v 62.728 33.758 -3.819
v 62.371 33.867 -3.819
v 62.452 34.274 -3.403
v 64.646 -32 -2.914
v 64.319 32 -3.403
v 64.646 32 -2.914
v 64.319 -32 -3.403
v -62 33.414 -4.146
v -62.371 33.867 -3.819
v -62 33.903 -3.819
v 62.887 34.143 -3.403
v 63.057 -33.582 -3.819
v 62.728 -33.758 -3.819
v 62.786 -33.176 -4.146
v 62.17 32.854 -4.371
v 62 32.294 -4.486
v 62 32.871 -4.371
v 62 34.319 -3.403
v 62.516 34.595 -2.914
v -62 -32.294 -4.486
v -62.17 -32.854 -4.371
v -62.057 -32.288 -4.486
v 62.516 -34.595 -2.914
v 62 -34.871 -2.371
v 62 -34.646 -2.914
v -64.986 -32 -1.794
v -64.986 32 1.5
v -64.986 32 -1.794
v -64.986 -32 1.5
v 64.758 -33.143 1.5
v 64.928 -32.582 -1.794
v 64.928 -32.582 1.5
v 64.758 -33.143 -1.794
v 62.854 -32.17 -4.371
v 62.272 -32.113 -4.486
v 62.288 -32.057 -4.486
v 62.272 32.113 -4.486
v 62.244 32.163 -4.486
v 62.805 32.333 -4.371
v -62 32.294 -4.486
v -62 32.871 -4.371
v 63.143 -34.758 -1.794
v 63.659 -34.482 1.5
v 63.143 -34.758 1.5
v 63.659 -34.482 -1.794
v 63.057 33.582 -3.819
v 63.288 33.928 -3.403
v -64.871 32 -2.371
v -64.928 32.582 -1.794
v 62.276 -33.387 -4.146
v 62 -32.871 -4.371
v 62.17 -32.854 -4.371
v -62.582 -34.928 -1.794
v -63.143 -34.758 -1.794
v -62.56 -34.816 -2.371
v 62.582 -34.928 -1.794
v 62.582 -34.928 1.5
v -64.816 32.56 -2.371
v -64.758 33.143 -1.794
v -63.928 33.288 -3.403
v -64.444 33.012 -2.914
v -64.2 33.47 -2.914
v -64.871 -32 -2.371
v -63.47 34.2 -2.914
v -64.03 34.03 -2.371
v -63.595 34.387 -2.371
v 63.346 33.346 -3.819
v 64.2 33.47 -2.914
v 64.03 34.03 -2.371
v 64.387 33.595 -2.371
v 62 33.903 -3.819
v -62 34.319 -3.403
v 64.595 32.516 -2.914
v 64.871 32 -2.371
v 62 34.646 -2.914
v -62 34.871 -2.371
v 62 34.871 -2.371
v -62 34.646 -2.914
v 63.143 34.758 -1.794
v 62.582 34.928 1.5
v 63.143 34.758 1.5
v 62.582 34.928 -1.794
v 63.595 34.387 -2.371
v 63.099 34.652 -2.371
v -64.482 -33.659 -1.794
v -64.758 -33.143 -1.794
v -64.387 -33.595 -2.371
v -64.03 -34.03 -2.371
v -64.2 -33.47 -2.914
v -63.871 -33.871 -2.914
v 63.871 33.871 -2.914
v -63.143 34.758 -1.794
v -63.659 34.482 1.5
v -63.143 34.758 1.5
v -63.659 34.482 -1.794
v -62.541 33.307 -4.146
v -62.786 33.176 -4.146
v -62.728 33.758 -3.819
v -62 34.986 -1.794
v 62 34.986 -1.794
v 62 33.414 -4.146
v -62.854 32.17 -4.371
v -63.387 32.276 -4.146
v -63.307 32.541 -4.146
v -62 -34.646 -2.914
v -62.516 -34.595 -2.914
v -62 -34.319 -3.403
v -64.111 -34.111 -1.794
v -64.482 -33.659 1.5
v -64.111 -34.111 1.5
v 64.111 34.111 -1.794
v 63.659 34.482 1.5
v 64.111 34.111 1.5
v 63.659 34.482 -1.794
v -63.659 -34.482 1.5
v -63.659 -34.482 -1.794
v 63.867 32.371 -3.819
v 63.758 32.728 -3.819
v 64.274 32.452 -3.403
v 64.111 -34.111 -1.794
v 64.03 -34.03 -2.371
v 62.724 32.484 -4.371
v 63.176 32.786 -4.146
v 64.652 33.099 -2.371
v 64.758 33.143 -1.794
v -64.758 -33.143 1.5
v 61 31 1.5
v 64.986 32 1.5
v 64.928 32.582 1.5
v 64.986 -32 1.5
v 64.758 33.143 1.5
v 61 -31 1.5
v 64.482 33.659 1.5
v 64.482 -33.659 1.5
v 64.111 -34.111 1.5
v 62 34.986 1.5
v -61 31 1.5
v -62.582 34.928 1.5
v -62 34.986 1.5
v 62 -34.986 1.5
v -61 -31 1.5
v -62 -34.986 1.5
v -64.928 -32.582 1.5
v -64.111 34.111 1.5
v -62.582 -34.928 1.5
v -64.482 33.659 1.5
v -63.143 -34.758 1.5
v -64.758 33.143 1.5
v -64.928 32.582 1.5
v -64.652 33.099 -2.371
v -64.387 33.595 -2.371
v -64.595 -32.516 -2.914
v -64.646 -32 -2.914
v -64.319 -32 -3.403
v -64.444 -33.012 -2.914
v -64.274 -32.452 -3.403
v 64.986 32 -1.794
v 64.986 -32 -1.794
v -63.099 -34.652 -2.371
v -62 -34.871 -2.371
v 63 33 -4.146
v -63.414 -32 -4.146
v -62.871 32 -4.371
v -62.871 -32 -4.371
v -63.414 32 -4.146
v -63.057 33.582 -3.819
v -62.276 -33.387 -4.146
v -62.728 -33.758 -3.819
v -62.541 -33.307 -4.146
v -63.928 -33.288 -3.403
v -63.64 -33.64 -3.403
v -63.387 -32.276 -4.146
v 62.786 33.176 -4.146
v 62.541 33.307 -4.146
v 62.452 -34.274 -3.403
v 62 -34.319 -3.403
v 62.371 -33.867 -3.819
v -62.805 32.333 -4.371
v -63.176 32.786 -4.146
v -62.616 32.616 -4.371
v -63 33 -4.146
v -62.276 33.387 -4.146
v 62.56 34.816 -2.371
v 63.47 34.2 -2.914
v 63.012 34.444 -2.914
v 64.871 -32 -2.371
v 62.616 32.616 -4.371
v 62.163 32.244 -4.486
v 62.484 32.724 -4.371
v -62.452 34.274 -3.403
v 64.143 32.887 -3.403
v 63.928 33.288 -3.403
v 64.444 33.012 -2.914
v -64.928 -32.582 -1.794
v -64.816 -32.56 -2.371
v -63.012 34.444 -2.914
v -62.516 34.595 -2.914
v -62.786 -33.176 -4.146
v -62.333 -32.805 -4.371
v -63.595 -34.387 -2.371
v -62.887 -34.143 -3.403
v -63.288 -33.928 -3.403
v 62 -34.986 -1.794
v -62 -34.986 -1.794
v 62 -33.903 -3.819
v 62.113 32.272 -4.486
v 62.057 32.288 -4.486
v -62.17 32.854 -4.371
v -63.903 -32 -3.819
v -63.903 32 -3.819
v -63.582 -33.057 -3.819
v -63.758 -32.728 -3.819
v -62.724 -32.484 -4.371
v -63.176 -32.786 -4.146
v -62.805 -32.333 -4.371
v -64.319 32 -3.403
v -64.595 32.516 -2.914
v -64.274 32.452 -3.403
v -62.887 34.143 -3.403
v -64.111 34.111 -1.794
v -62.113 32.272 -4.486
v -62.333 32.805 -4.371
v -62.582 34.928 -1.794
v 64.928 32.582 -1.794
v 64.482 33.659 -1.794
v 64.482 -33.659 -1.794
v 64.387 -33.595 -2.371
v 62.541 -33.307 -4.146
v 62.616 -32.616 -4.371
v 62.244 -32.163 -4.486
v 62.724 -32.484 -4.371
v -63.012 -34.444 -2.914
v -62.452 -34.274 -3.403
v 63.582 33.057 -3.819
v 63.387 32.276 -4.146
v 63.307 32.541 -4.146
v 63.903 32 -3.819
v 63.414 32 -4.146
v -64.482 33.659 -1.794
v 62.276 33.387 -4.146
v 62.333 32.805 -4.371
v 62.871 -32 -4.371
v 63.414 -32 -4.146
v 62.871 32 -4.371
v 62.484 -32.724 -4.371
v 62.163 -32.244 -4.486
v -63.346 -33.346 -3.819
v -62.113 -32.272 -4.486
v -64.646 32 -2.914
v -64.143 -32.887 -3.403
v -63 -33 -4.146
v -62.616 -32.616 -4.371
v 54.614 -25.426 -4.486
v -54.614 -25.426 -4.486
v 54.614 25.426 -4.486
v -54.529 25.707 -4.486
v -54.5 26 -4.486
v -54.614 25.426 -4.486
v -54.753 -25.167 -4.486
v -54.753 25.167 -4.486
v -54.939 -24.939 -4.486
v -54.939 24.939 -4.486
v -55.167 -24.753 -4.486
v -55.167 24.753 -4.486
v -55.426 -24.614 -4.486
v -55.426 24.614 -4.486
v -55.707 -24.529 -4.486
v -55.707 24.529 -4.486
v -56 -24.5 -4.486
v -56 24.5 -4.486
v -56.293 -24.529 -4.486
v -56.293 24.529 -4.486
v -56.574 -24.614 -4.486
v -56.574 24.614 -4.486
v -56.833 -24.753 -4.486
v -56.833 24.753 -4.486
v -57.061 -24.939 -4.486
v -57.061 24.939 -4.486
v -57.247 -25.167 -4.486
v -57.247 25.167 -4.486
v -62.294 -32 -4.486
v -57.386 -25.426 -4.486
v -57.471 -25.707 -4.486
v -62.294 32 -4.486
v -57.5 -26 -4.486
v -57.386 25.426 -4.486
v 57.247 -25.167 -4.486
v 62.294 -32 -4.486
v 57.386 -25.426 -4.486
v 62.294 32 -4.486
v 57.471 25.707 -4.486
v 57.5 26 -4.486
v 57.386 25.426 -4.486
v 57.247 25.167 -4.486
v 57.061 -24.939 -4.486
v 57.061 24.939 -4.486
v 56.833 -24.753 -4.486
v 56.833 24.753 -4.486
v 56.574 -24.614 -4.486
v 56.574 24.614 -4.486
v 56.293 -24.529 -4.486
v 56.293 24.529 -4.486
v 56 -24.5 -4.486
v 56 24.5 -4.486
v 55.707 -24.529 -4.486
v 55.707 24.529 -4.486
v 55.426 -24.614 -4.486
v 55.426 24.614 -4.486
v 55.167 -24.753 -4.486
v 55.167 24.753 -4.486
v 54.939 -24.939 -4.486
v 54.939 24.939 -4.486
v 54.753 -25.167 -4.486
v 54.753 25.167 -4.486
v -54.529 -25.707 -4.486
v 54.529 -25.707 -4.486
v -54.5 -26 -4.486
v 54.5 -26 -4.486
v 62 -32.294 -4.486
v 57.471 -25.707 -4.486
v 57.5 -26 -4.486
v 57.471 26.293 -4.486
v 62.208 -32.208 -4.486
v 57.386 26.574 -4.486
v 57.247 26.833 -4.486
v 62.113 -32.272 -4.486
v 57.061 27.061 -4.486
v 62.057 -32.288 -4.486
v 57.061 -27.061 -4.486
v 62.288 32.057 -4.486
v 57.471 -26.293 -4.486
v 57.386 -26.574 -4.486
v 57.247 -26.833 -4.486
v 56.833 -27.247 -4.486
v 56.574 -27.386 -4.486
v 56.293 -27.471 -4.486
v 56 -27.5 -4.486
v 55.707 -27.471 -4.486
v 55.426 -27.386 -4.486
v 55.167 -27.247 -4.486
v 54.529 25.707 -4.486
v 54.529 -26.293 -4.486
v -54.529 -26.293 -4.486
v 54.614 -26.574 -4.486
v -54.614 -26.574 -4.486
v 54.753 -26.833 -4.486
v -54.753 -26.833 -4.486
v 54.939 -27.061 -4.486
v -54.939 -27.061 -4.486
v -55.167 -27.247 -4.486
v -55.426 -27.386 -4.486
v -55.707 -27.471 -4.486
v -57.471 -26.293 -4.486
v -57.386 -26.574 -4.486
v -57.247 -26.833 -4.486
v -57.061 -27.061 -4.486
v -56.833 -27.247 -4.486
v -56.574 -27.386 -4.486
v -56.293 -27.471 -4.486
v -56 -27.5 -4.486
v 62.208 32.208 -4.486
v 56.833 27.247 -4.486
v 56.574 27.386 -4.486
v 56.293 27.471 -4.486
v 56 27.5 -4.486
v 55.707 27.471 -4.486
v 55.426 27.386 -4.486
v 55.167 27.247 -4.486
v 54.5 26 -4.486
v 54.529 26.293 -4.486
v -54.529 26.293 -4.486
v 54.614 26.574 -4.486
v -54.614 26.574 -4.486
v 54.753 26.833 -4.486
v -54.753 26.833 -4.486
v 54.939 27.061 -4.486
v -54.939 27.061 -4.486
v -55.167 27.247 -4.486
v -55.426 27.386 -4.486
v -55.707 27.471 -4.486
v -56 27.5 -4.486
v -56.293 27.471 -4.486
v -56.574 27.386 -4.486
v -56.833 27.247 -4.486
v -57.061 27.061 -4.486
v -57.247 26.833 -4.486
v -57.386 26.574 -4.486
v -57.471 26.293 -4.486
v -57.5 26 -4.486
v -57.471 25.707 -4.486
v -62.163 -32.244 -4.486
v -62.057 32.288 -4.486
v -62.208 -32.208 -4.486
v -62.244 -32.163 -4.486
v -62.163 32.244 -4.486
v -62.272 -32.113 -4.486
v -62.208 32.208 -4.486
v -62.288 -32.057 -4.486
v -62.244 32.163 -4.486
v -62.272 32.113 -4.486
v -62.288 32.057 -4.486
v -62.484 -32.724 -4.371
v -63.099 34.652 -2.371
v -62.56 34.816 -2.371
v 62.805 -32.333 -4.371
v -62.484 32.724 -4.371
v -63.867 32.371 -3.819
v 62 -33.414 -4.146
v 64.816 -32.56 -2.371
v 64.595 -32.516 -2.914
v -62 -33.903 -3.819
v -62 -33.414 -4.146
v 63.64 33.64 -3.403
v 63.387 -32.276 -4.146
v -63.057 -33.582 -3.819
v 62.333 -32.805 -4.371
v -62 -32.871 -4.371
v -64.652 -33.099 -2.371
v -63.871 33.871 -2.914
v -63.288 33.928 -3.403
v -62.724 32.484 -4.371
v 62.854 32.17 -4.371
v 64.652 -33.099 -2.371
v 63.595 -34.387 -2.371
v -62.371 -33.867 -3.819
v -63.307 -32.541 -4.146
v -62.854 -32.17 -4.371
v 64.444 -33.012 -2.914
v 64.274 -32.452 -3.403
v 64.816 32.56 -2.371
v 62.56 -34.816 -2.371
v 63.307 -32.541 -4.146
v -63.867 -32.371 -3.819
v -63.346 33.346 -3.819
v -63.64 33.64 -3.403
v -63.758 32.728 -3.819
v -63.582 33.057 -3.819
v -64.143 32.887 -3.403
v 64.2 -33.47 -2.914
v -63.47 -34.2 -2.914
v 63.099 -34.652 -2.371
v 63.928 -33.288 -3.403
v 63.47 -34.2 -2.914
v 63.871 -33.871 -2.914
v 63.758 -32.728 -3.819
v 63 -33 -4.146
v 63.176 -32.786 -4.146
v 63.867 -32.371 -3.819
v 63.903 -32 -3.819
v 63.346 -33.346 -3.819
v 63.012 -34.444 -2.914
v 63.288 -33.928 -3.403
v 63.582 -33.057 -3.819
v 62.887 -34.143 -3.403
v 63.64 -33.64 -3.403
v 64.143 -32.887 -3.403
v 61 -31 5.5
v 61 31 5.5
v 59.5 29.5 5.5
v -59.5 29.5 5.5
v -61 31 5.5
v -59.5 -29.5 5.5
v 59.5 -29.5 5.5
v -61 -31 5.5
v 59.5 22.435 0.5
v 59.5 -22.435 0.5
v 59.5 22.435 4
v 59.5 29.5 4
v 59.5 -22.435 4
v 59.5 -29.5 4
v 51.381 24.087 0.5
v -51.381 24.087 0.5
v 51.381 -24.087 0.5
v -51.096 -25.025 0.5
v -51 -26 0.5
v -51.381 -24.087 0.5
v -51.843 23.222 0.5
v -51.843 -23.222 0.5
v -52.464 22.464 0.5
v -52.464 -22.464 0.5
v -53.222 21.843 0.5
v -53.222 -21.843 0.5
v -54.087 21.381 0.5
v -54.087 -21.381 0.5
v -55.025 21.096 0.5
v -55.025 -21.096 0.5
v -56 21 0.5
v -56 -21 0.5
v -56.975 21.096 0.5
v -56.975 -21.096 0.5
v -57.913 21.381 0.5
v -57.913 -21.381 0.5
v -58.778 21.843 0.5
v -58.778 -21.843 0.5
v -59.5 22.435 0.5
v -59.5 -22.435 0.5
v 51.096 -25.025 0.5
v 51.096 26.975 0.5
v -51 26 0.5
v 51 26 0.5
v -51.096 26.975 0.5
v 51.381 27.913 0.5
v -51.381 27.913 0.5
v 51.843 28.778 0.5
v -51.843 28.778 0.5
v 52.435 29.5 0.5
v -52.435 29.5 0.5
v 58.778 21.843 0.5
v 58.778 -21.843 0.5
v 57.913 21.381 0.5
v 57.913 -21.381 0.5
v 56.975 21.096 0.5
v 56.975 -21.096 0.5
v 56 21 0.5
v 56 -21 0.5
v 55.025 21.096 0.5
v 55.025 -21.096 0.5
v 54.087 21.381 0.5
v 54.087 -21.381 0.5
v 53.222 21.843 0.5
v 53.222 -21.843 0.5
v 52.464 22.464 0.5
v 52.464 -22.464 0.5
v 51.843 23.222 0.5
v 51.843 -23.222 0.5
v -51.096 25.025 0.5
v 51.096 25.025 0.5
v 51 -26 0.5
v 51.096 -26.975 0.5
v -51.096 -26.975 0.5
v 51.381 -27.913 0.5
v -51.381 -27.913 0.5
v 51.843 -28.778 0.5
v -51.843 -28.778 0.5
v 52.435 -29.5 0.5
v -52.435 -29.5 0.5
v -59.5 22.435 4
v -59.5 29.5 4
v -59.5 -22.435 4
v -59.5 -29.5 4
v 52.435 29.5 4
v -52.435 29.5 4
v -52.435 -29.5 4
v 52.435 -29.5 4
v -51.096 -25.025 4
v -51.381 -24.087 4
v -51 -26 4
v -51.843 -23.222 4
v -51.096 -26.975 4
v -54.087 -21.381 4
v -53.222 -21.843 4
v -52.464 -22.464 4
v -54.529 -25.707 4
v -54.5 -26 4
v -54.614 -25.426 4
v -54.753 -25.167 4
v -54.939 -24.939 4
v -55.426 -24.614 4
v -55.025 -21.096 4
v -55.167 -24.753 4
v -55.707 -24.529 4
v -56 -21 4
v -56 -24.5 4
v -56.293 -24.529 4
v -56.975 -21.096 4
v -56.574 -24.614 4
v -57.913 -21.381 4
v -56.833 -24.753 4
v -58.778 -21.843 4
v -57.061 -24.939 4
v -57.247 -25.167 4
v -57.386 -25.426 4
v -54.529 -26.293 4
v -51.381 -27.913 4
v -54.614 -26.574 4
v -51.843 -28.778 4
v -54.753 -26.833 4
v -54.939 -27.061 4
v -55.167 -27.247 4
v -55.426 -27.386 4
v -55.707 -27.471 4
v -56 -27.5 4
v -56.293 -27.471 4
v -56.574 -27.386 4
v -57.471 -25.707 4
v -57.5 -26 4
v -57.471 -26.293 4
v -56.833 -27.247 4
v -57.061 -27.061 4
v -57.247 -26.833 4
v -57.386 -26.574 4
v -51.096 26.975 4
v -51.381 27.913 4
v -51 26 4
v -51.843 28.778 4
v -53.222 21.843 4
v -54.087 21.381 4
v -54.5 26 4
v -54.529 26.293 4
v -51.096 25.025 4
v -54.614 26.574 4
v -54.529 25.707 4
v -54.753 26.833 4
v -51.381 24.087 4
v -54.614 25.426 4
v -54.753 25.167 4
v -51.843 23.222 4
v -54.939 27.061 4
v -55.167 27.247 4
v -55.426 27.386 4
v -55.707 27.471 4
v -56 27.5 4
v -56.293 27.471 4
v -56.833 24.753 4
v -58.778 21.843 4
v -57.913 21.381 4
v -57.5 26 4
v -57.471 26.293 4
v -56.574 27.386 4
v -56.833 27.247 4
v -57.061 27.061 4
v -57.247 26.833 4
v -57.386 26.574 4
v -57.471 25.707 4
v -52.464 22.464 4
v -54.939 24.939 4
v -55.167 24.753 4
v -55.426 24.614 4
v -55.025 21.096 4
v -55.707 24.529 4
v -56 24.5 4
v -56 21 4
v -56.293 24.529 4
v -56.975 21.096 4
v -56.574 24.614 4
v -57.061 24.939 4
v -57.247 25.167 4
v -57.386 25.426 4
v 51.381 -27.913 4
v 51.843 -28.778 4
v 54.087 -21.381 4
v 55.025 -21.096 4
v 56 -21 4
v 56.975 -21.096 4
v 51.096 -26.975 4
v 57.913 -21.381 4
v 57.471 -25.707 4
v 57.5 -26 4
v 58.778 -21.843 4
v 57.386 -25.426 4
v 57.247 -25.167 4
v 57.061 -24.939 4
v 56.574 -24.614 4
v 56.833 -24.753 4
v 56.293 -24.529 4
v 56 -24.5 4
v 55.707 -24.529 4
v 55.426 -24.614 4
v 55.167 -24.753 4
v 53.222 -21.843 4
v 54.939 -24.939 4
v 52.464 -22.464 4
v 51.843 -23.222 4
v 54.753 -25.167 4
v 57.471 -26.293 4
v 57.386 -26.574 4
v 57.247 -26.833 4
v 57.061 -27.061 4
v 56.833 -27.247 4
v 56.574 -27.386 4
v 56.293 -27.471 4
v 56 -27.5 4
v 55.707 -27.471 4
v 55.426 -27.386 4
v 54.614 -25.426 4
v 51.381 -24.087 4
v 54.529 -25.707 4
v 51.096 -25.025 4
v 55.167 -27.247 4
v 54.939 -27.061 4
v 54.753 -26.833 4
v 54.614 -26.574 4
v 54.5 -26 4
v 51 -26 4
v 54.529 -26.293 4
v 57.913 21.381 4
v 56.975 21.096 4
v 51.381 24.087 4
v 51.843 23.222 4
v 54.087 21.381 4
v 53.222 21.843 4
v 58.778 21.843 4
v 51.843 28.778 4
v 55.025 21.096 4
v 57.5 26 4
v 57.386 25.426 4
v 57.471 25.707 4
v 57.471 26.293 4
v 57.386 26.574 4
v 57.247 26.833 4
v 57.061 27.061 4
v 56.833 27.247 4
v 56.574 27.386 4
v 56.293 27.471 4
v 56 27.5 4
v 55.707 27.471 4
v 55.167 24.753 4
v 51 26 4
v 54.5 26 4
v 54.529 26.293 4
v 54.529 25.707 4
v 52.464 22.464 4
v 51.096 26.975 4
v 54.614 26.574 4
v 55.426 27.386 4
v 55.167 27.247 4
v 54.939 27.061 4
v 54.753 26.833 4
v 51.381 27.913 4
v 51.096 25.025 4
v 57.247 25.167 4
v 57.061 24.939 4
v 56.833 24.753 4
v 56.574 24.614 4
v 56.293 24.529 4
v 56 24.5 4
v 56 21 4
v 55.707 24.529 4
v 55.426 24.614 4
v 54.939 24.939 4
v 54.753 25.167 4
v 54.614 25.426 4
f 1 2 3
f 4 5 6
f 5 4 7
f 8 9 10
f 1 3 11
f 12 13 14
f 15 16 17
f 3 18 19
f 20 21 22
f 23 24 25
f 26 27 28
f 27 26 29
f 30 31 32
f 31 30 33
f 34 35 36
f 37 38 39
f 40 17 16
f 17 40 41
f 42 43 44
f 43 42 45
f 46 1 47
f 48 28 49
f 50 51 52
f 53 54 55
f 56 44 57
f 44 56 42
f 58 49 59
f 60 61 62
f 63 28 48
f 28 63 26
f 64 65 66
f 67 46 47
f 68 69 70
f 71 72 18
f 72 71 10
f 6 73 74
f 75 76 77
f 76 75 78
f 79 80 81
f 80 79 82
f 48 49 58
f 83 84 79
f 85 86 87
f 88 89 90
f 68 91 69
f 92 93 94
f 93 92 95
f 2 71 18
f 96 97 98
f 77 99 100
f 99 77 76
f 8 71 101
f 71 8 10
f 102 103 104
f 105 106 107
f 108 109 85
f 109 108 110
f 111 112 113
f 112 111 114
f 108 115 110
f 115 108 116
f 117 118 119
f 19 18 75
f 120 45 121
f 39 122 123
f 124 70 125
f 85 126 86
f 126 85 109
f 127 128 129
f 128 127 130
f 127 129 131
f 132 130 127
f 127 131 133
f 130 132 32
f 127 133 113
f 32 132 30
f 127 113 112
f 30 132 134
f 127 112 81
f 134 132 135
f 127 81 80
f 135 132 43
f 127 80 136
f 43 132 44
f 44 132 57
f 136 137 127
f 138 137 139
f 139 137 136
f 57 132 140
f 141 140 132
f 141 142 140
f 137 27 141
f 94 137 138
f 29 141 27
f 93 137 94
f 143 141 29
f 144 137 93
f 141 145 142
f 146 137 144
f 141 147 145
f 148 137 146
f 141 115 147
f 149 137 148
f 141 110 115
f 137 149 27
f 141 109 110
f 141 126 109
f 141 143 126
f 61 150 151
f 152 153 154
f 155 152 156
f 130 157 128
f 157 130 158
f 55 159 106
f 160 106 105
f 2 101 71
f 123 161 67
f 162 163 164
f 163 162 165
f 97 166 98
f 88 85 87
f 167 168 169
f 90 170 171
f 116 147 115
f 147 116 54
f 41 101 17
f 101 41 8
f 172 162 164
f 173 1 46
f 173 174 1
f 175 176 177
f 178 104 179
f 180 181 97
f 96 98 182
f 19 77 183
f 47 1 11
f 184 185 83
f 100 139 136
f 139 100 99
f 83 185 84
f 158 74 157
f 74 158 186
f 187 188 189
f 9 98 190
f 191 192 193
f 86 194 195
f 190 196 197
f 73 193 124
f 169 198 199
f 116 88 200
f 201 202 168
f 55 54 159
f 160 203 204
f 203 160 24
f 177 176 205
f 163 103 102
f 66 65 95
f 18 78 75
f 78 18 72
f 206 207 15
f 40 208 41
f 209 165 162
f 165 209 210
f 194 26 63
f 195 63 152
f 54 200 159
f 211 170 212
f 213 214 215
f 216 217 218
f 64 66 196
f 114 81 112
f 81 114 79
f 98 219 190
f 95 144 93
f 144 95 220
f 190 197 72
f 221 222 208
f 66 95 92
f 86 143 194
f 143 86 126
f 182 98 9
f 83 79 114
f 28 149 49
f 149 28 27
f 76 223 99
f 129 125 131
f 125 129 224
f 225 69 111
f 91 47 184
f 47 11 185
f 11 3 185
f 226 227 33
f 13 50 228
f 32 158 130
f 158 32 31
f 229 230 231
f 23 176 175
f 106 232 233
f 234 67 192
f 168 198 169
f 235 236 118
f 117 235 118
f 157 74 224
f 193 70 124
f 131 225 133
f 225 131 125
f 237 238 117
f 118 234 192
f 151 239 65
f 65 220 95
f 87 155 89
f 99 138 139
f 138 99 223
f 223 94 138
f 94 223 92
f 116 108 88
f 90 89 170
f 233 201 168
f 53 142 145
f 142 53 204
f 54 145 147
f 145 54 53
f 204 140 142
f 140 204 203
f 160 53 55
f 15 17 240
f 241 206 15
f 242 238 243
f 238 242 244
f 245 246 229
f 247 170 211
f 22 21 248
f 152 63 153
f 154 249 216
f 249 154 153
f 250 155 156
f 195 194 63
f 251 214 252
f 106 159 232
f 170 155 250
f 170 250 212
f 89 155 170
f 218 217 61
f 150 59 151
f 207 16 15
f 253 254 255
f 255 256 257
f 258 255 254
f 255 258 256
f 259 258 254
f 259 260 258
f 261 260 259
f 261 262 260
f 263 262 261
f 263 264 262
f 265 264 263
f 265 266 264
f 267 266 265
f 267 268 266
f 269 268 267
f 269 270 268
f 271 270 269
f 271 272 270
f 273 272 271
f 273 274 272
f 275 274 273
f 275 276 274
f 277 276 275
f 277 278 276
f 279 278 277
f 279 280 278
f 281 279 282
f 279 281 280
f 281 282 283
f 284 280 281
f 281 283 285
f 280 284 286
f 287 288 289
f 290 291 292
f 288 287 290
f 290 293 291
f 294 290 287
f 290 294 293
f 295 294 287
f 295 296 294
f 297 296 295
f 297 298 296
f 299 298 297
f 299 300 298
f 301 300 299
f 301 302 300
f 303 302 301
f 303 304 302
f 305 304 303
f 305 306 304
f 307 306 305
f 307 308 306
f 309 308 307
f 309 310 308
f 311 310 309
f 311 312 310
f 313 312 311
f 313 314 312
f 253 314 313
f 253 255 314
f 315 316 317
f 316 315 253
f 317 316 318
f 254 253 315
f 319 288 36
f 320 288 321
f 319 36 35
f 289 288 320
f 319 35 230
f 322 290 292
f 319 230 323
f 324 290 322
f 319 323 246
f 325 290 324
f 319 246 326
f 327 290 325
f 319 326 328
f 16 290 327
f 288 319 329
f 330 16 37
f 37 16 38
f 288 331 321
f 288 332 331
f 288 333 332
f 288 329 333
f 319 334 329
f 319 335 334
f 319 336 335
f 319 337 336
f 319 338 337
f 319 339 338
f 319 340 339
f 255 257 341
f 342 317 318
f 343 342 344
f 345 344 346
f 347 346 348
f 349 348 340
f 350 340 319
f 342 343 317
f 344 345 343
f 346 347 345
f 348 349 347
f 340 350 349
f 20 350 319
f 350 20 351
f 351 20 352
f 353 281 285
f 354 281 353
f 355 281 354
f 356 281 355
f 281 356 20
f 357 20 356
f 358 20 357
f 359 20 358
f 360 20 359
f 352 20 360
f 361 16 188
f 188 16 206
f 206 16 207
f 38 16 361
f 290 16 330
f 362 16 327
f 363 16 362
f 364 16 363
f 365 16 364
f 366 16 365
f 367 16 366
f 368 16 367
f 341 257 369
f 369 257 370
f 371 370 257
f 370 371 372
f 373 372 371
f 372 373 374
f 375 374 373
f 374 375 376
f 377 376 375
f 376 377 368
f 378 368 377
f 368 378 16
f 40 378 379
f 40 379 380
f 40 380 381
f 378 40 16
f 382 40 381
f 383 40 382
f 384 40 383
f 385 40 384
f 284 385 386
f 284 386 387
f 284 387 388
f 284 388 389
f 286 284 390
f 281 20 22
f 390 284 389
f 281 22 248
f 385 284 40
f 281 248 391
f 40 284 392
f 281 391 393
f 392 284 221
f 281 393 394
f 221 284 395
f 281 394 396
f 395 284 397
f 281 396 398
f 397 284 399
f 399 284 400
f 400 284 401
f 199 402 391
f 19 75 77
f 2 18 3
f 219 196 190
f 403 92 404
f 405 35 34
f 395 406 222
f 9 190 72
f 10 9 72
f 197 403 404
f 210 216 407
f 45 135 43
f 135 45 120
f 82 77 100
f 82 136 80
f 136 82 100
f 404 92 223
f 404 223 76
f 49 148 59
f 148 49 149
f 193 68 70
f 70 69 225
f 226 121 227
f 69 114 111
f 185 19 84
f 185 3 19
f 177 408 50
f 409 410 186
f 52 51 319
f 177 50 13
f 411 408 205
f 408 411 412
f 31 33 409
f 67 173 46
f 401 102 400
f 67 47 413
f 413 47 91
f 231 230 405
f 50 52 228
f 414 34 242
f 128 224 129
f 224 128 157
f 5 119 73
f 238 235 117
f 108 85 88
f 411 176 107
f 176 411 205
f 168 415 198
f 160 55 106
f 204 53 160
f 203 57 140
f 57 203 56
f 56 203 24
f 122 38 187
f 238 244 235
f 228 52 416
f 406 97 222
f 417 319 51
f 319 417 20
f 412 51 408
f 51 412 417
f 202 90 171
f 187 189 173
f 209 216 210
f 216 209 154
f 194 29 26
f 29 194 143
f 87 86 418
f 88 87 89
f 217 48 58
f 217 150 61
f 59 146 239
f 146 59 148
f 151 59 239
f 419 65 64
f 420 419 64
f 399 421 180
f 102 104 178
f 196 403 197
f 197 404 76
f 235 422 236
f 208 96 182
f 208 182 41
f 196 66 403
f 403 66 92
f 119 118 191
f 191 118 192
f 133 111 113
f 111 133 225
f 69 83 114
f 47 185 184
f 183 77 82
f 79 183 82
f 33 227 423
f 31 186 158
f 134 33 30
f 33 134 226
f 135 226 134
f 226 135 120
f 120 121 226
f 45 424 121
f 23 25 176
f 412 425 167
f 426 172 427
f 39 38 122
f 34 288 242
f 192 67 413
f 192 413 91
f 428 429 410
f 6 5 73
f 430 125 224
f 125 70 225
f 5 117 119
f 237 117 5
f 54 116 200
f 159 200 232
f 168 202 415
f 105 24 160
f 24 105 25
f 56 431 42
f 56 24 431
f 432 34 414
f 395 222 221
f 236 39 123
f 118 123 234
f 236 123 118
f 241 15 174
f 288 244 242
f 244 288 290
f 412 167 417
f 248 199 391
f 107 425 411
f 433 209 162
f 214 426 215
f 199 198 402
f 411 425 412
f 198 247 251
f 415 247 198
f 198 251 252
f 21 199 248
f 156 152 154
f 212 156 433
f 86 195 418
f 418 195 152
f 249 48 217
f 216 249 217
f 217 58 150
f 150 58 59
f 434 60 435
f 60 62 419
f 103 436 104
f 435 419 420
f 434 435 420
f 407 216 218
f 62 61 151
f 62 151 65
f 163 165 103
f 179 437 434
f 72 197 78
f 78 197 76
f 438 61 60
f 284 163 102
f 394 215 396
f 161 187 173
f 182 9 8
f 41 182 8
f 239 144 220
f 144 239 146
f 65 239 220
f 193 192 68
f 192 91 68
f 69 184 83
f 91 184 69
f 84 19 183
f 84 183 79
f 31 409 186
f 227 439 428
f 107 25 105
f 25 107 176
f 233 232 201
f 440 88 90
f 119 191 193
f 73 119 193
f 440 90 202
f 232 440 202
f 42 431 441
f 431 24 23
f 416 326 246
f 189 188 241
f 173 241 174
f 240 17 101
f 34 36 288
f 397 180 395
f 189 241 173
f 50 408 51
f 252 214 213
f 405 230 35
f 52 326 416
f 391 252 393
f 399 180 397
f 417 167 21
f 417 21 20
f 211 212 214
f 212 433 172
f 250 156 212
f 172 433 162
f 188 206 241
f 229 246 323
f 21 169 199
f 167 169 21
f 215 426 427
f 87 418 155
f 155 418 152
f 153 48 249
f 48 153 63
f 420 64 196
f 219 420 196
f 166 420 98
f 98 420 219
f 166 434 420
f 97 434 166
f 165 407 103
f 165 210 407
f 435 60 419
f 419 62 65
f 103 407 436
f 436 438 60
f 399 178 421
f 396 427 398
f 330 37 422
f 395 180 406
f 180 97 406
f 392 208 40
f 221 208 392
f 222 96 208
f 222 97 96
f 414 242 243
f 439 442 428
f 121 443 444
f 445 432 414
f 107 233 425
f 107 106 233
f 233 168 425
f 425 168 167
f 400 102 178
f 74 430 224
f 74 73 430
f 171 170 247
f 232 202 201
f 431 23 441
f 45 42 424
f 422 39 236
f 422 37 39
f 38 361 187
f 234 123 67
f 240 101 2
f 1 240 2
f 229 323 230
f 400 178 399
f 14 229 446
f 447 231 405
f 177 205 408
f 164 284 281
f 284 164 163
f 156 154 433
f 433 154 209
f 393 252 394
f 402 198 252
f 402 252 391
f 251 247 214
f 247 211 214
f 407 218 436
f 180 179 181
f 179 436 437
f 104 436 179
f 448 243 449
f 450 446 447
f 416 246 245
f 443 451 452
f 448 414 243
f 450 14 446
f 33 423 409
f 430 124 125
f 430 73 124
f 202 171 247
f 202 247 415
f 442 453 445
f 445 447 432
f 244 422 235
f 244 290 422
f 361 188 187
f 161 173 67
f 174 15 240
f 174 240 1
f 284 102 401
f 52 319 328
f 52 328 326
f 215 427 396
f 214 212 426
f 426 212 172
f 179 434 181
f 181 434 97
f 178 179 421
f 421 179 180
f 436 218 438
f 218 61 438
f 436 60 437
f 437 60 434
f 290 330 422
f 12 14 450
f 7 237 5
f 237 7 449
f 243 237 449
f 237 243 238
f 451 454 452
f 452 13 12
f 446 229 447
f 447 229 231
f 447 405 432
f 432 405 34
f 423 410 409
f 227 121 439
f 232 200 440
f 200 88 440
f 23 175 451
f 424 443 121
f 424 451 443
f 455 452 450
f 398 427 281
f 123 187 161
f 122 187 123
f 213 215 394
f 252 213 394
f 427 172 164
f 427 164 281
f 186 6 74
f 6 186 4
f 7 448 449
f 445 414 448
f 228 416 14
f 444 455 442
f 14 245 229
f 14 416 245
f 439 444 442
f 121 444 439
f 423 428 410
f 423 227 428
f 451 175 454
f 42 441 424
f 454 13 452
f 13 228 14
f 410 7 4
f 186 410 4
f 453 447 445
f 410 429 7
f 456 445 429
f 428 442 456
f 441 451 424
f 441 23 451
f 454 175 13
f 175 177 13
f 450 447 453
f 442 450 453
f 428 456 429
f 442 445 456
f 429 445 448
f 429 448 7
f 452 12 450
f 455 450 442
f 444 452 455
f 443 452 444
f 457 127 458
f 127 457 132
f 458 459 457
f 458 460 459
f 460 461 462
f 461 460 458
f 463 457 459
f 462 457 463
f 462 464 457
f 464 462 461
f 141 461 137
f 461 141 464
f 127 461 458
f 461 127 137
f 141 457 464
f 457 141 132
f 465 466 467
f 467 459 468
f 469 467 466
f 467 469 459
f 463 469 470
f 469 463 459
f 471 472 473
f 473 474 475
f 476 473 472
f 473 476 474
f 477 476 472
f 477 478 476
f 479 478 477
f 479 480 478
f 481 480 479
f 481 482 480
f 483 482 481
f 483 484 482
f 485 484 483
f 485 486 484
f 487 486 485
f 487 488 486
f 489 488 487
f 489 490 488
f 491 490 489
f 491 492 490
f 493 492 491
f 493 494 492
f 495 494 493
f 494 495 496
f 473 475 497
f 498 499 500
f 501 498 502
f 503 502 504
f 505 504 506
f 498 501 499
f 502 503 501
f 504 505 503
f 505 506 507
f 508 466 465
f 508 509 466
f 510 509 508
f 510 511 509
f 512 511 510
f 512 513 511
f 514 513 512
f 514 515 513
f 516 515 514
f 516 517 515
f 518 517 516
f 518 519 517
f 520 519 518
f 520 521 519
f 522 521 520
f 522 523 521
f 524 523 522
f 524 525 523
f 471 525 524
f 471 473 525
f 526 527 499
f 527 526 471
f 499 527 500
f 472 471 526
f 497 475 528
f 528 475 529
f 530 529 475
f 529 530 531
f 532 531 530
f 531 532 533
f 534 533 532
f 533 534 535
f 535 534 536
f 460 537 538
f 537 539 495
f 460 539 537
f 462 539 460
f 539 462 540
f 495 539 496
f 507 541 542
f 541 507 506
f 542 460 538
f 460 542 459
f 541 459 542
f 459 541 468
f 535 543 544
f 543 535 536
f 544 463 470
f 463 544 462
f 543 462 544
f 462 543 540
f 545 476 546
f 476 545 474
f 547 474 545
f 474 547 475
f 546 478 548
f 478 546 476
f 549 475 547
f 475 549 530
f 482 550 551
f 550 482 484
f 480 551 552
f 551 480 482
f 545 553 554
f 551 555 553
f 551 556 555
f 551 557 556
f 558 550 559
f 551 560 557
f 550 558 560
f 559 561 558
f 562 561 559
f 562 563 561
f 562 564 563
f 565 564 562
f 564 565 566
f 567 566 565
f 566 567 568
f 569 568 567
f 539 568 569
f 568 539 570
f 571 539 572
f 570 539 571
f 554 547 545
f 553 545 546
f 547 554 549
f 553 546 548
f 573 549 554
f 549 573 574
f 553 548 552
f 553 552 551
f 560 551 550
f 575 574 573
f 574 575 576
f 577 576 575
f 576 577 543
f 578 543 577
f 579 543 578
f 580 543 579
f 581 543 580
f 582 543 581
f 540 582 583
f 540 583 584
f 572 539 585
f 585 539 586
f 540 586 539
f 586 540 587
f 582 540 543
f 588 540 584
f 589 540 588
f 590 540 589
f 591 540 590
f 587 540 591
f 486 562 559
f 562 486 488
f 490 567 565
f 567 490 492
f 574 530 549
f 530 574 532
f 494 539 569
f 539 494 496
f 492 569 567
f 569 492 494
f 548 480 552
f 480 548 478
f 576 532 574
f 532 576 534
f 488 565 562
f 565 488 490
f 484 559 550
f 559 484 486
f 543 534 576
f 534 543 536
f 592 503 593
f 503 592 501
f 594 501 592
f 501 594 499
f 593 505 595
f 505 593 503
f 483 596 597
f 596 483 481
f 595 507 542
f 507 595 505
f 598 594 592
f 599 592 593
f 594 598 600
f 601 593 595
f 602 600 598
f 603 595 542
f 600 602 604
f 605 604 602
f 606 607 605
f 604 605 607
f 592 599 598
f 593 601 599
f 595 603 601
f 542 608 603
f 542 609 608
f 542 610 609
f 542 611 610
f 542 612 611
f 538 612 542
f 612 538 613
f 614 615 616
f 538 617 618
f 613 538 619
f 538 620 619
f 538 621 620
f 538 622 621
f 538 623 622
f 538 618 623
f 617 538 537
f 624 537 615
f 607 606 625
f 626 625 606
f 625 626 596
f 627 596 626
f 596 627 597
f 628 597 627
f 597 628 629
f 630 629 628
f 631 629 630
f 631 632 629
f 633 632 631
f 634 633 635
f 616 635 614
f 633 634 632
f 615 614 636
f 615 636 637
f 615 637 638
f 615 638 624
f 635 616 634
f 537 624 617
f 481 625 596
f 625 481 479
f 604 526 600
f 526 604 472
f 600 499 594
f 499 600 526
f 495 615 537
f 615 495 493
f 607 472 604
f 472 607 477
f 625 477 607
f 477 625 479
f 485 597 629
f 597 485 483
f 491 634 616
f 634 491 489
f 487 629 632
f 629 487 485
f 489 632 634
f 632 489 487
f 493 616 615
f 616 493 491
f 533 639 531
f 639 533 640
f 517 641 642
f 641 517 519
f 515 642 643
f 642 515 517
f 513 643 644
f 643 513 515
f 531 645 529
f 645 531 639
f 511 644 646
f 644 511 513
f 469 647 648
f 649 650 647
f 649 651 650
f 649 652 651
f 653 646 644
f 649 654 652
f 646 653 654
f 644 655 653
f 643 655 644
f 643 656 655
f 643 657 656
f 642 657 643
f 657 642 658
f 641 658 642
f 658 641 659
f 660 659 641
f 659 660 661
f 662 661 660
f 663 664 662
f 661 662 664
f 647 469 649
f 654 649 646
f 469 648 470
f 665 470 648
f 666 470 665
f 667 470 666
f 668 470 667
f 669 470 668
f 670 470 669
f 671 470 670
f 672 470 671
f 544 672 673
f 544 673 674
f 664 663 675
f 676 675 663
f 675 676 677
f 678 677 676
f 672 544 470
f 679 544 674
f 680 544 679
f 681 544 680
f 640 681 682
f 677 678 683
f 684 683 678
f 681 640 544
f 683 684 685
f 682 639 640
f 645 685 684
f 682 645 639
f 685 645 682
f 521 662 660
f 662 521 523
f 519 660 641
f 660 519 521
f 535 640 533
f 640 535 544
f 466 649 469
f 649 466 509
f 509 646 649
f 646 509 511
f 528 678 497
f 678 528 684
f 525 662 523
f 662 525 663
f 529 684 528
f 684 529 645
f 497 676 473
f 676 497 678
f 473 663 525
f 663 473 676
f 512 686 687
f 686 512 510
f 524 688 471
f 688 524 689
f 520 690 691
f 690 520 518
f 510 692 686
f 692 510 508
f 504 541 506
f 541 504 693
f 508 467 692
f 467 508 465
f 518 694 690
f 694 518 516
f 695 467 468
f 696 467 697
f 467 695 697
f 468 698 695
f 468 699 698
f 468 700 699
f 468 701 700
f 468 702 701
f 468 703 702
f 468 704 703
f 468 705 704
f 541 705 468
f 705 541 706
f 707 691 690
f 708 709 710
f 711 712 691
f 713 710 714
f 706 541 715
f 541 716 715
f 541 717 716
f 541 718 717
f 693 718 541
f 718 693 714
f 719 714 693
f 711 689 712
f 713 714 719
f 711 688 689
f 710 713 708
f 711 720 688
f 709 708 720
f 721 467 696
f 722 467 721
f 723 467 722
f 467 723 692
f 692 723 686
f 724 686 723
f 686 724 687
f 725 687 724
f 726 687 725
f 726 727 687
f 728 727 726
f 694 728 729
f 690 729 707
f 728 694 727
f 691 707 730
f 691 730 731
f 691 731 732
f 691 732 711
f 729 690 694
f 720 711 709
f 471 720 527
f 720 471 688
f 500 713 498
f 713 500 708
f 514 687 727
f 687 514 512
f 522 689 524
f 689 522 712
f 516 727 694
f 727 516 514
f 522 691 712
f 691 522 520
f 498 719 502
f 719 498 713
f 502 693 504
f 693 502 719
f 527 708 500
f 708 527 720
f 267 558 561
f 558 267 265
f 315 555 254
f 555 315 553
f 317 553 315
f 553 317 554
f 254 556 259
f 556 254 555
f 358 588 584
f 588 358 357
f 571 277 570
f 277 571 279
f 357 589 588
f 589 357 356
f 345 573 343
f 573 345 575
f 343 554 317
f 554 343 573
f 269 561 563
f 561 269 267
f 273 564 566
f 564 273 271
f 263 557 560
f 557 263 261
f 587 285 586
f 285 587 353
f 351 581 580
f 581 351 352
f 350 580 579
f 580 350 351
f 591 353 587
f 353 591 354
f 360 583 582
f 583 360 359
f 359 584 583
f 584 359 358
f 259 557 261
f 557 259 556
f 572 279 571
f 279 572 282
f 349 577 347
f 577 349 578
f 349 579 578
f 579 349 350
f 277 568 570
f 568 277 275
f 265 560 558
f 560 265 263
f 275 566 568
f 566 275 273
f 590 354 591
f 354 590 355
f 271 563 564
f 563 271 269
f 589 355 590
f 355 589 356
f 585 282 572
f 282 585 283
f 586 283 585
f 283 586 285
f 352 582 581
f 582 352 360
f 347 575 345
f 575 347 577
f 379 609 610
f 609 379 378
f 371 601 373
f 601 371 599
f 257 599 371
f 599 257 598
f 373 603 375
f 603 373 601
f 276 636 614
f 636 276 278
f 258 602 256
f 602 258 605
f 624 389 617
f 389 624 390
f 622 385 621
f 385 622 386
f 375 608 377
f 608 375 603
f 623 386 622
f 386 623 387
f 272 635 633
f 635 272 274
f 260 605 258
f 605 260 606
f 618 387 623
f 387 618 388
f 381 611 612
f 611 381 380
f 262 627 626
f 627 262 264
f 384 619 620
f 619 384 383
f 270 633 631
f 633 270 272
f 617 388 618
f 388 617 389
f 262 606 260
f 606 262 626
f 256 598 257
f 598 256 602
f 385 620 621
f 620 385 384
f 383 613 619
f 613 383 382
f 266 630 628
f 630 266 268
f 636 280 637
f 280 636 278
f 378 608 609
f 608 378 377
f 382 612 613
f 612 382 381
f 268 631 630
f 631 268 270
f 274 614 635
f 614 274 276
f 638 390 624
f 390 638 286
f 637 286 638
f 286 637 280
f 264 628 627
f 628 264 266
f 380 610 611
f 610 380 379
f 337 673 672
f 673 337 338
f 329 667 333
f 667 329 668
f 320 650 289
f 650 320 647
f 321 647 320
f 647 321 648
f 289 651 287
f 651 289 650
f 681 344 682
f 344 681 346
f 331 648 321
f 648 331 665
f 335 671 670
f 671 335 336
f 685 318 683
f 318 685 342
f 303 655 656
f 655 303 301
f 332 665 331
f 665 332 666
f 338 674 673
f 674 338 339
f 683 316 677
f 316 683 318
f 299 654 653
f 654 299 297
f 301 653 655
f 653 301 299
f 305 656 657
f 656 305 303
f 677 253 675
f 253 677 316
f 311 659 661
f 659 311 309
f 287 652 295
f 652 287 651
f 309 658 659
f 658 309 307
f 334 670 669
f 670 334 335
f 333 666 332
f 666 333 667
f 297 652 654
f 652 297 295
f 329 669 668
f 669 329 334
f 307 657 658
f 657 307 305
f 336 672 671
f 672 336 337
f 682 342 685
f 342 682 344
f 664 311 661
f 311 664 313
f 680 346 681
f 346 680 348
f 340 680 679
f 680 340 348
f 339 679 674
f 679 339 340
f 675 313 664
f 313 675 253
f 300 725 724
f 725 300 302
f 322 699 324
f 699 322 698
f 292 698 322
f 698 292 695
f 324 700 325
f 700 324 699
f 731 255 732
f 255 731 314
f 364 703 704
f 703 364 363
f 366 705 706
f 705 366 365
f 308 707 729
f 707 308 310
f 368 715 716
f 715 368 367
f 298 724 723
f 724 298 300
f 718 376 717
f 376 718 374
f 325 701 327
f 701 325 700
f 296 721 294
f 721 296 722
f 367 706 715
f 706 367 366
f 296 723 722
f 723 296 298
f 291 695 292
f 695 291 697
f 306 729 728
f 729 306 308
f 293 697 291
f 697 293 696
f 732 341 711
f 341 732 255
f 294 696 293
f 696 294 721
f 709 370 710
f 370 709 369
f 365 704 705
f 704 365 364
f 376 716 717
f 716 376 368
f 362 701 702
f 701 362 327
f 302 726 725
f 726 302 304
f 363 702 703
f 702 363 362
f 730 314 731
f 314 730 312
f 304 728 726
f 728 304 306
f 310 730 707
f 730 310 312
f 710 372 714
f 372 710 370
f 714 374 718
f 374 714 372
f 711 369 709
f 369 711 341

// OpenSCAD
// Water Softener Salt Sensor Housing - Lid
// Stepped edge: outer part sits on top of base walls, inner part drops into rebate

lid_l = 130; // outer length — matches base exterior (sits on top of walls)
lid_w = 70; // outer width — matches base exterior (sits on top of walls)
lid_inner_l = 122; // inner length — fits inside rebate opening (124mm)
lid_inner_w = 62; // inner width — fits inside rebate opening (64mm)
lid_h = 8; // total thickness (inner part full height)
lid_step_h = 3; // outer step height (sits on top of walls)

// Boss positions (must match base.scad exactly)
base_l = 130;
base_w = 70;
base_wall = 3;
boss_d = 5; // matches base boss_d
boss_overlap = -3.5; // matches base boss_overlap
boss_x = base_l / 2 - base_wall - boss_d / 2 + boss_overlap;
boss_y = base_w / 2 - base_wall - boss_d / 2 + boss_overlap;
screw_d = 3;

fillet_r = 3; // exterior corner fillet radius (mm)

// ── Lid module ──────────────────────────────────────────────
module lid() {

  // Step 1: Create the outer step with rounded exterior edges.
  // Step 2: Add the inner section that drops into the base rebate.
  // Step 3: Cut out the underside to form the lid's recessed interior.
  // Step 4: Add cylindrical bosses around the screw holes.
  // Step 5: Cut the screw holes through the lid and bosses.

  difference() {

    union() {

      difference() {

        union() {
          minkowski() {
            // Cube reduced by twice the fillet radius on each side.
            cube([lid_l - fillet_r * 2, lid_w - fillet_r * 2, lid_step_h], center=true);
            // Use the lower half of a sphere to round the outer edges.
            difference() {
              sphere(r=fillet_r, $fn=32);
              translate([0, 0, fillet_r / 2])
                cube([fillet_r * 2, fillet_r * 2, fillet_r], center=true);
            }
          }

          // ── Step 2: Inner section — drops into the base rebate ──
          translate([0, 0, lid_step_h / 2])
            cube([lid_inner_l, lid_inner_w, lid_h], center=true);
        }

        // Step 3: Cut out the underside, leaving the lid's recessed interior.
        translate([0, 0, lid_step_h / 2 + base_wall])
          cube([lid_inner_l - base_wall, lid_inner_w - base_wall, lid_h], center=true);
      }

      // Step 4: Add bosses around the screw holes.
      for (x = [-1, 1], y = [-1, 1]) {
        translate([x * boss_x, y * boss_y, lid_step_h / 2])
          cylinder(h=boss_d, d=boss_d * 2, center=true, $fn=32);
      }
    }

    // Step 5: Cut screw holes through the lid and bosses.
    for (x = [-1, 1], y = [-1, 1]) {
      translate([x * boss_x, y * boss_y, lid_step_h / 2])
        cylinder(h=lid_h * 10, d=screw_d, center=true, $fn=32);
    }
  }
}

lid();
